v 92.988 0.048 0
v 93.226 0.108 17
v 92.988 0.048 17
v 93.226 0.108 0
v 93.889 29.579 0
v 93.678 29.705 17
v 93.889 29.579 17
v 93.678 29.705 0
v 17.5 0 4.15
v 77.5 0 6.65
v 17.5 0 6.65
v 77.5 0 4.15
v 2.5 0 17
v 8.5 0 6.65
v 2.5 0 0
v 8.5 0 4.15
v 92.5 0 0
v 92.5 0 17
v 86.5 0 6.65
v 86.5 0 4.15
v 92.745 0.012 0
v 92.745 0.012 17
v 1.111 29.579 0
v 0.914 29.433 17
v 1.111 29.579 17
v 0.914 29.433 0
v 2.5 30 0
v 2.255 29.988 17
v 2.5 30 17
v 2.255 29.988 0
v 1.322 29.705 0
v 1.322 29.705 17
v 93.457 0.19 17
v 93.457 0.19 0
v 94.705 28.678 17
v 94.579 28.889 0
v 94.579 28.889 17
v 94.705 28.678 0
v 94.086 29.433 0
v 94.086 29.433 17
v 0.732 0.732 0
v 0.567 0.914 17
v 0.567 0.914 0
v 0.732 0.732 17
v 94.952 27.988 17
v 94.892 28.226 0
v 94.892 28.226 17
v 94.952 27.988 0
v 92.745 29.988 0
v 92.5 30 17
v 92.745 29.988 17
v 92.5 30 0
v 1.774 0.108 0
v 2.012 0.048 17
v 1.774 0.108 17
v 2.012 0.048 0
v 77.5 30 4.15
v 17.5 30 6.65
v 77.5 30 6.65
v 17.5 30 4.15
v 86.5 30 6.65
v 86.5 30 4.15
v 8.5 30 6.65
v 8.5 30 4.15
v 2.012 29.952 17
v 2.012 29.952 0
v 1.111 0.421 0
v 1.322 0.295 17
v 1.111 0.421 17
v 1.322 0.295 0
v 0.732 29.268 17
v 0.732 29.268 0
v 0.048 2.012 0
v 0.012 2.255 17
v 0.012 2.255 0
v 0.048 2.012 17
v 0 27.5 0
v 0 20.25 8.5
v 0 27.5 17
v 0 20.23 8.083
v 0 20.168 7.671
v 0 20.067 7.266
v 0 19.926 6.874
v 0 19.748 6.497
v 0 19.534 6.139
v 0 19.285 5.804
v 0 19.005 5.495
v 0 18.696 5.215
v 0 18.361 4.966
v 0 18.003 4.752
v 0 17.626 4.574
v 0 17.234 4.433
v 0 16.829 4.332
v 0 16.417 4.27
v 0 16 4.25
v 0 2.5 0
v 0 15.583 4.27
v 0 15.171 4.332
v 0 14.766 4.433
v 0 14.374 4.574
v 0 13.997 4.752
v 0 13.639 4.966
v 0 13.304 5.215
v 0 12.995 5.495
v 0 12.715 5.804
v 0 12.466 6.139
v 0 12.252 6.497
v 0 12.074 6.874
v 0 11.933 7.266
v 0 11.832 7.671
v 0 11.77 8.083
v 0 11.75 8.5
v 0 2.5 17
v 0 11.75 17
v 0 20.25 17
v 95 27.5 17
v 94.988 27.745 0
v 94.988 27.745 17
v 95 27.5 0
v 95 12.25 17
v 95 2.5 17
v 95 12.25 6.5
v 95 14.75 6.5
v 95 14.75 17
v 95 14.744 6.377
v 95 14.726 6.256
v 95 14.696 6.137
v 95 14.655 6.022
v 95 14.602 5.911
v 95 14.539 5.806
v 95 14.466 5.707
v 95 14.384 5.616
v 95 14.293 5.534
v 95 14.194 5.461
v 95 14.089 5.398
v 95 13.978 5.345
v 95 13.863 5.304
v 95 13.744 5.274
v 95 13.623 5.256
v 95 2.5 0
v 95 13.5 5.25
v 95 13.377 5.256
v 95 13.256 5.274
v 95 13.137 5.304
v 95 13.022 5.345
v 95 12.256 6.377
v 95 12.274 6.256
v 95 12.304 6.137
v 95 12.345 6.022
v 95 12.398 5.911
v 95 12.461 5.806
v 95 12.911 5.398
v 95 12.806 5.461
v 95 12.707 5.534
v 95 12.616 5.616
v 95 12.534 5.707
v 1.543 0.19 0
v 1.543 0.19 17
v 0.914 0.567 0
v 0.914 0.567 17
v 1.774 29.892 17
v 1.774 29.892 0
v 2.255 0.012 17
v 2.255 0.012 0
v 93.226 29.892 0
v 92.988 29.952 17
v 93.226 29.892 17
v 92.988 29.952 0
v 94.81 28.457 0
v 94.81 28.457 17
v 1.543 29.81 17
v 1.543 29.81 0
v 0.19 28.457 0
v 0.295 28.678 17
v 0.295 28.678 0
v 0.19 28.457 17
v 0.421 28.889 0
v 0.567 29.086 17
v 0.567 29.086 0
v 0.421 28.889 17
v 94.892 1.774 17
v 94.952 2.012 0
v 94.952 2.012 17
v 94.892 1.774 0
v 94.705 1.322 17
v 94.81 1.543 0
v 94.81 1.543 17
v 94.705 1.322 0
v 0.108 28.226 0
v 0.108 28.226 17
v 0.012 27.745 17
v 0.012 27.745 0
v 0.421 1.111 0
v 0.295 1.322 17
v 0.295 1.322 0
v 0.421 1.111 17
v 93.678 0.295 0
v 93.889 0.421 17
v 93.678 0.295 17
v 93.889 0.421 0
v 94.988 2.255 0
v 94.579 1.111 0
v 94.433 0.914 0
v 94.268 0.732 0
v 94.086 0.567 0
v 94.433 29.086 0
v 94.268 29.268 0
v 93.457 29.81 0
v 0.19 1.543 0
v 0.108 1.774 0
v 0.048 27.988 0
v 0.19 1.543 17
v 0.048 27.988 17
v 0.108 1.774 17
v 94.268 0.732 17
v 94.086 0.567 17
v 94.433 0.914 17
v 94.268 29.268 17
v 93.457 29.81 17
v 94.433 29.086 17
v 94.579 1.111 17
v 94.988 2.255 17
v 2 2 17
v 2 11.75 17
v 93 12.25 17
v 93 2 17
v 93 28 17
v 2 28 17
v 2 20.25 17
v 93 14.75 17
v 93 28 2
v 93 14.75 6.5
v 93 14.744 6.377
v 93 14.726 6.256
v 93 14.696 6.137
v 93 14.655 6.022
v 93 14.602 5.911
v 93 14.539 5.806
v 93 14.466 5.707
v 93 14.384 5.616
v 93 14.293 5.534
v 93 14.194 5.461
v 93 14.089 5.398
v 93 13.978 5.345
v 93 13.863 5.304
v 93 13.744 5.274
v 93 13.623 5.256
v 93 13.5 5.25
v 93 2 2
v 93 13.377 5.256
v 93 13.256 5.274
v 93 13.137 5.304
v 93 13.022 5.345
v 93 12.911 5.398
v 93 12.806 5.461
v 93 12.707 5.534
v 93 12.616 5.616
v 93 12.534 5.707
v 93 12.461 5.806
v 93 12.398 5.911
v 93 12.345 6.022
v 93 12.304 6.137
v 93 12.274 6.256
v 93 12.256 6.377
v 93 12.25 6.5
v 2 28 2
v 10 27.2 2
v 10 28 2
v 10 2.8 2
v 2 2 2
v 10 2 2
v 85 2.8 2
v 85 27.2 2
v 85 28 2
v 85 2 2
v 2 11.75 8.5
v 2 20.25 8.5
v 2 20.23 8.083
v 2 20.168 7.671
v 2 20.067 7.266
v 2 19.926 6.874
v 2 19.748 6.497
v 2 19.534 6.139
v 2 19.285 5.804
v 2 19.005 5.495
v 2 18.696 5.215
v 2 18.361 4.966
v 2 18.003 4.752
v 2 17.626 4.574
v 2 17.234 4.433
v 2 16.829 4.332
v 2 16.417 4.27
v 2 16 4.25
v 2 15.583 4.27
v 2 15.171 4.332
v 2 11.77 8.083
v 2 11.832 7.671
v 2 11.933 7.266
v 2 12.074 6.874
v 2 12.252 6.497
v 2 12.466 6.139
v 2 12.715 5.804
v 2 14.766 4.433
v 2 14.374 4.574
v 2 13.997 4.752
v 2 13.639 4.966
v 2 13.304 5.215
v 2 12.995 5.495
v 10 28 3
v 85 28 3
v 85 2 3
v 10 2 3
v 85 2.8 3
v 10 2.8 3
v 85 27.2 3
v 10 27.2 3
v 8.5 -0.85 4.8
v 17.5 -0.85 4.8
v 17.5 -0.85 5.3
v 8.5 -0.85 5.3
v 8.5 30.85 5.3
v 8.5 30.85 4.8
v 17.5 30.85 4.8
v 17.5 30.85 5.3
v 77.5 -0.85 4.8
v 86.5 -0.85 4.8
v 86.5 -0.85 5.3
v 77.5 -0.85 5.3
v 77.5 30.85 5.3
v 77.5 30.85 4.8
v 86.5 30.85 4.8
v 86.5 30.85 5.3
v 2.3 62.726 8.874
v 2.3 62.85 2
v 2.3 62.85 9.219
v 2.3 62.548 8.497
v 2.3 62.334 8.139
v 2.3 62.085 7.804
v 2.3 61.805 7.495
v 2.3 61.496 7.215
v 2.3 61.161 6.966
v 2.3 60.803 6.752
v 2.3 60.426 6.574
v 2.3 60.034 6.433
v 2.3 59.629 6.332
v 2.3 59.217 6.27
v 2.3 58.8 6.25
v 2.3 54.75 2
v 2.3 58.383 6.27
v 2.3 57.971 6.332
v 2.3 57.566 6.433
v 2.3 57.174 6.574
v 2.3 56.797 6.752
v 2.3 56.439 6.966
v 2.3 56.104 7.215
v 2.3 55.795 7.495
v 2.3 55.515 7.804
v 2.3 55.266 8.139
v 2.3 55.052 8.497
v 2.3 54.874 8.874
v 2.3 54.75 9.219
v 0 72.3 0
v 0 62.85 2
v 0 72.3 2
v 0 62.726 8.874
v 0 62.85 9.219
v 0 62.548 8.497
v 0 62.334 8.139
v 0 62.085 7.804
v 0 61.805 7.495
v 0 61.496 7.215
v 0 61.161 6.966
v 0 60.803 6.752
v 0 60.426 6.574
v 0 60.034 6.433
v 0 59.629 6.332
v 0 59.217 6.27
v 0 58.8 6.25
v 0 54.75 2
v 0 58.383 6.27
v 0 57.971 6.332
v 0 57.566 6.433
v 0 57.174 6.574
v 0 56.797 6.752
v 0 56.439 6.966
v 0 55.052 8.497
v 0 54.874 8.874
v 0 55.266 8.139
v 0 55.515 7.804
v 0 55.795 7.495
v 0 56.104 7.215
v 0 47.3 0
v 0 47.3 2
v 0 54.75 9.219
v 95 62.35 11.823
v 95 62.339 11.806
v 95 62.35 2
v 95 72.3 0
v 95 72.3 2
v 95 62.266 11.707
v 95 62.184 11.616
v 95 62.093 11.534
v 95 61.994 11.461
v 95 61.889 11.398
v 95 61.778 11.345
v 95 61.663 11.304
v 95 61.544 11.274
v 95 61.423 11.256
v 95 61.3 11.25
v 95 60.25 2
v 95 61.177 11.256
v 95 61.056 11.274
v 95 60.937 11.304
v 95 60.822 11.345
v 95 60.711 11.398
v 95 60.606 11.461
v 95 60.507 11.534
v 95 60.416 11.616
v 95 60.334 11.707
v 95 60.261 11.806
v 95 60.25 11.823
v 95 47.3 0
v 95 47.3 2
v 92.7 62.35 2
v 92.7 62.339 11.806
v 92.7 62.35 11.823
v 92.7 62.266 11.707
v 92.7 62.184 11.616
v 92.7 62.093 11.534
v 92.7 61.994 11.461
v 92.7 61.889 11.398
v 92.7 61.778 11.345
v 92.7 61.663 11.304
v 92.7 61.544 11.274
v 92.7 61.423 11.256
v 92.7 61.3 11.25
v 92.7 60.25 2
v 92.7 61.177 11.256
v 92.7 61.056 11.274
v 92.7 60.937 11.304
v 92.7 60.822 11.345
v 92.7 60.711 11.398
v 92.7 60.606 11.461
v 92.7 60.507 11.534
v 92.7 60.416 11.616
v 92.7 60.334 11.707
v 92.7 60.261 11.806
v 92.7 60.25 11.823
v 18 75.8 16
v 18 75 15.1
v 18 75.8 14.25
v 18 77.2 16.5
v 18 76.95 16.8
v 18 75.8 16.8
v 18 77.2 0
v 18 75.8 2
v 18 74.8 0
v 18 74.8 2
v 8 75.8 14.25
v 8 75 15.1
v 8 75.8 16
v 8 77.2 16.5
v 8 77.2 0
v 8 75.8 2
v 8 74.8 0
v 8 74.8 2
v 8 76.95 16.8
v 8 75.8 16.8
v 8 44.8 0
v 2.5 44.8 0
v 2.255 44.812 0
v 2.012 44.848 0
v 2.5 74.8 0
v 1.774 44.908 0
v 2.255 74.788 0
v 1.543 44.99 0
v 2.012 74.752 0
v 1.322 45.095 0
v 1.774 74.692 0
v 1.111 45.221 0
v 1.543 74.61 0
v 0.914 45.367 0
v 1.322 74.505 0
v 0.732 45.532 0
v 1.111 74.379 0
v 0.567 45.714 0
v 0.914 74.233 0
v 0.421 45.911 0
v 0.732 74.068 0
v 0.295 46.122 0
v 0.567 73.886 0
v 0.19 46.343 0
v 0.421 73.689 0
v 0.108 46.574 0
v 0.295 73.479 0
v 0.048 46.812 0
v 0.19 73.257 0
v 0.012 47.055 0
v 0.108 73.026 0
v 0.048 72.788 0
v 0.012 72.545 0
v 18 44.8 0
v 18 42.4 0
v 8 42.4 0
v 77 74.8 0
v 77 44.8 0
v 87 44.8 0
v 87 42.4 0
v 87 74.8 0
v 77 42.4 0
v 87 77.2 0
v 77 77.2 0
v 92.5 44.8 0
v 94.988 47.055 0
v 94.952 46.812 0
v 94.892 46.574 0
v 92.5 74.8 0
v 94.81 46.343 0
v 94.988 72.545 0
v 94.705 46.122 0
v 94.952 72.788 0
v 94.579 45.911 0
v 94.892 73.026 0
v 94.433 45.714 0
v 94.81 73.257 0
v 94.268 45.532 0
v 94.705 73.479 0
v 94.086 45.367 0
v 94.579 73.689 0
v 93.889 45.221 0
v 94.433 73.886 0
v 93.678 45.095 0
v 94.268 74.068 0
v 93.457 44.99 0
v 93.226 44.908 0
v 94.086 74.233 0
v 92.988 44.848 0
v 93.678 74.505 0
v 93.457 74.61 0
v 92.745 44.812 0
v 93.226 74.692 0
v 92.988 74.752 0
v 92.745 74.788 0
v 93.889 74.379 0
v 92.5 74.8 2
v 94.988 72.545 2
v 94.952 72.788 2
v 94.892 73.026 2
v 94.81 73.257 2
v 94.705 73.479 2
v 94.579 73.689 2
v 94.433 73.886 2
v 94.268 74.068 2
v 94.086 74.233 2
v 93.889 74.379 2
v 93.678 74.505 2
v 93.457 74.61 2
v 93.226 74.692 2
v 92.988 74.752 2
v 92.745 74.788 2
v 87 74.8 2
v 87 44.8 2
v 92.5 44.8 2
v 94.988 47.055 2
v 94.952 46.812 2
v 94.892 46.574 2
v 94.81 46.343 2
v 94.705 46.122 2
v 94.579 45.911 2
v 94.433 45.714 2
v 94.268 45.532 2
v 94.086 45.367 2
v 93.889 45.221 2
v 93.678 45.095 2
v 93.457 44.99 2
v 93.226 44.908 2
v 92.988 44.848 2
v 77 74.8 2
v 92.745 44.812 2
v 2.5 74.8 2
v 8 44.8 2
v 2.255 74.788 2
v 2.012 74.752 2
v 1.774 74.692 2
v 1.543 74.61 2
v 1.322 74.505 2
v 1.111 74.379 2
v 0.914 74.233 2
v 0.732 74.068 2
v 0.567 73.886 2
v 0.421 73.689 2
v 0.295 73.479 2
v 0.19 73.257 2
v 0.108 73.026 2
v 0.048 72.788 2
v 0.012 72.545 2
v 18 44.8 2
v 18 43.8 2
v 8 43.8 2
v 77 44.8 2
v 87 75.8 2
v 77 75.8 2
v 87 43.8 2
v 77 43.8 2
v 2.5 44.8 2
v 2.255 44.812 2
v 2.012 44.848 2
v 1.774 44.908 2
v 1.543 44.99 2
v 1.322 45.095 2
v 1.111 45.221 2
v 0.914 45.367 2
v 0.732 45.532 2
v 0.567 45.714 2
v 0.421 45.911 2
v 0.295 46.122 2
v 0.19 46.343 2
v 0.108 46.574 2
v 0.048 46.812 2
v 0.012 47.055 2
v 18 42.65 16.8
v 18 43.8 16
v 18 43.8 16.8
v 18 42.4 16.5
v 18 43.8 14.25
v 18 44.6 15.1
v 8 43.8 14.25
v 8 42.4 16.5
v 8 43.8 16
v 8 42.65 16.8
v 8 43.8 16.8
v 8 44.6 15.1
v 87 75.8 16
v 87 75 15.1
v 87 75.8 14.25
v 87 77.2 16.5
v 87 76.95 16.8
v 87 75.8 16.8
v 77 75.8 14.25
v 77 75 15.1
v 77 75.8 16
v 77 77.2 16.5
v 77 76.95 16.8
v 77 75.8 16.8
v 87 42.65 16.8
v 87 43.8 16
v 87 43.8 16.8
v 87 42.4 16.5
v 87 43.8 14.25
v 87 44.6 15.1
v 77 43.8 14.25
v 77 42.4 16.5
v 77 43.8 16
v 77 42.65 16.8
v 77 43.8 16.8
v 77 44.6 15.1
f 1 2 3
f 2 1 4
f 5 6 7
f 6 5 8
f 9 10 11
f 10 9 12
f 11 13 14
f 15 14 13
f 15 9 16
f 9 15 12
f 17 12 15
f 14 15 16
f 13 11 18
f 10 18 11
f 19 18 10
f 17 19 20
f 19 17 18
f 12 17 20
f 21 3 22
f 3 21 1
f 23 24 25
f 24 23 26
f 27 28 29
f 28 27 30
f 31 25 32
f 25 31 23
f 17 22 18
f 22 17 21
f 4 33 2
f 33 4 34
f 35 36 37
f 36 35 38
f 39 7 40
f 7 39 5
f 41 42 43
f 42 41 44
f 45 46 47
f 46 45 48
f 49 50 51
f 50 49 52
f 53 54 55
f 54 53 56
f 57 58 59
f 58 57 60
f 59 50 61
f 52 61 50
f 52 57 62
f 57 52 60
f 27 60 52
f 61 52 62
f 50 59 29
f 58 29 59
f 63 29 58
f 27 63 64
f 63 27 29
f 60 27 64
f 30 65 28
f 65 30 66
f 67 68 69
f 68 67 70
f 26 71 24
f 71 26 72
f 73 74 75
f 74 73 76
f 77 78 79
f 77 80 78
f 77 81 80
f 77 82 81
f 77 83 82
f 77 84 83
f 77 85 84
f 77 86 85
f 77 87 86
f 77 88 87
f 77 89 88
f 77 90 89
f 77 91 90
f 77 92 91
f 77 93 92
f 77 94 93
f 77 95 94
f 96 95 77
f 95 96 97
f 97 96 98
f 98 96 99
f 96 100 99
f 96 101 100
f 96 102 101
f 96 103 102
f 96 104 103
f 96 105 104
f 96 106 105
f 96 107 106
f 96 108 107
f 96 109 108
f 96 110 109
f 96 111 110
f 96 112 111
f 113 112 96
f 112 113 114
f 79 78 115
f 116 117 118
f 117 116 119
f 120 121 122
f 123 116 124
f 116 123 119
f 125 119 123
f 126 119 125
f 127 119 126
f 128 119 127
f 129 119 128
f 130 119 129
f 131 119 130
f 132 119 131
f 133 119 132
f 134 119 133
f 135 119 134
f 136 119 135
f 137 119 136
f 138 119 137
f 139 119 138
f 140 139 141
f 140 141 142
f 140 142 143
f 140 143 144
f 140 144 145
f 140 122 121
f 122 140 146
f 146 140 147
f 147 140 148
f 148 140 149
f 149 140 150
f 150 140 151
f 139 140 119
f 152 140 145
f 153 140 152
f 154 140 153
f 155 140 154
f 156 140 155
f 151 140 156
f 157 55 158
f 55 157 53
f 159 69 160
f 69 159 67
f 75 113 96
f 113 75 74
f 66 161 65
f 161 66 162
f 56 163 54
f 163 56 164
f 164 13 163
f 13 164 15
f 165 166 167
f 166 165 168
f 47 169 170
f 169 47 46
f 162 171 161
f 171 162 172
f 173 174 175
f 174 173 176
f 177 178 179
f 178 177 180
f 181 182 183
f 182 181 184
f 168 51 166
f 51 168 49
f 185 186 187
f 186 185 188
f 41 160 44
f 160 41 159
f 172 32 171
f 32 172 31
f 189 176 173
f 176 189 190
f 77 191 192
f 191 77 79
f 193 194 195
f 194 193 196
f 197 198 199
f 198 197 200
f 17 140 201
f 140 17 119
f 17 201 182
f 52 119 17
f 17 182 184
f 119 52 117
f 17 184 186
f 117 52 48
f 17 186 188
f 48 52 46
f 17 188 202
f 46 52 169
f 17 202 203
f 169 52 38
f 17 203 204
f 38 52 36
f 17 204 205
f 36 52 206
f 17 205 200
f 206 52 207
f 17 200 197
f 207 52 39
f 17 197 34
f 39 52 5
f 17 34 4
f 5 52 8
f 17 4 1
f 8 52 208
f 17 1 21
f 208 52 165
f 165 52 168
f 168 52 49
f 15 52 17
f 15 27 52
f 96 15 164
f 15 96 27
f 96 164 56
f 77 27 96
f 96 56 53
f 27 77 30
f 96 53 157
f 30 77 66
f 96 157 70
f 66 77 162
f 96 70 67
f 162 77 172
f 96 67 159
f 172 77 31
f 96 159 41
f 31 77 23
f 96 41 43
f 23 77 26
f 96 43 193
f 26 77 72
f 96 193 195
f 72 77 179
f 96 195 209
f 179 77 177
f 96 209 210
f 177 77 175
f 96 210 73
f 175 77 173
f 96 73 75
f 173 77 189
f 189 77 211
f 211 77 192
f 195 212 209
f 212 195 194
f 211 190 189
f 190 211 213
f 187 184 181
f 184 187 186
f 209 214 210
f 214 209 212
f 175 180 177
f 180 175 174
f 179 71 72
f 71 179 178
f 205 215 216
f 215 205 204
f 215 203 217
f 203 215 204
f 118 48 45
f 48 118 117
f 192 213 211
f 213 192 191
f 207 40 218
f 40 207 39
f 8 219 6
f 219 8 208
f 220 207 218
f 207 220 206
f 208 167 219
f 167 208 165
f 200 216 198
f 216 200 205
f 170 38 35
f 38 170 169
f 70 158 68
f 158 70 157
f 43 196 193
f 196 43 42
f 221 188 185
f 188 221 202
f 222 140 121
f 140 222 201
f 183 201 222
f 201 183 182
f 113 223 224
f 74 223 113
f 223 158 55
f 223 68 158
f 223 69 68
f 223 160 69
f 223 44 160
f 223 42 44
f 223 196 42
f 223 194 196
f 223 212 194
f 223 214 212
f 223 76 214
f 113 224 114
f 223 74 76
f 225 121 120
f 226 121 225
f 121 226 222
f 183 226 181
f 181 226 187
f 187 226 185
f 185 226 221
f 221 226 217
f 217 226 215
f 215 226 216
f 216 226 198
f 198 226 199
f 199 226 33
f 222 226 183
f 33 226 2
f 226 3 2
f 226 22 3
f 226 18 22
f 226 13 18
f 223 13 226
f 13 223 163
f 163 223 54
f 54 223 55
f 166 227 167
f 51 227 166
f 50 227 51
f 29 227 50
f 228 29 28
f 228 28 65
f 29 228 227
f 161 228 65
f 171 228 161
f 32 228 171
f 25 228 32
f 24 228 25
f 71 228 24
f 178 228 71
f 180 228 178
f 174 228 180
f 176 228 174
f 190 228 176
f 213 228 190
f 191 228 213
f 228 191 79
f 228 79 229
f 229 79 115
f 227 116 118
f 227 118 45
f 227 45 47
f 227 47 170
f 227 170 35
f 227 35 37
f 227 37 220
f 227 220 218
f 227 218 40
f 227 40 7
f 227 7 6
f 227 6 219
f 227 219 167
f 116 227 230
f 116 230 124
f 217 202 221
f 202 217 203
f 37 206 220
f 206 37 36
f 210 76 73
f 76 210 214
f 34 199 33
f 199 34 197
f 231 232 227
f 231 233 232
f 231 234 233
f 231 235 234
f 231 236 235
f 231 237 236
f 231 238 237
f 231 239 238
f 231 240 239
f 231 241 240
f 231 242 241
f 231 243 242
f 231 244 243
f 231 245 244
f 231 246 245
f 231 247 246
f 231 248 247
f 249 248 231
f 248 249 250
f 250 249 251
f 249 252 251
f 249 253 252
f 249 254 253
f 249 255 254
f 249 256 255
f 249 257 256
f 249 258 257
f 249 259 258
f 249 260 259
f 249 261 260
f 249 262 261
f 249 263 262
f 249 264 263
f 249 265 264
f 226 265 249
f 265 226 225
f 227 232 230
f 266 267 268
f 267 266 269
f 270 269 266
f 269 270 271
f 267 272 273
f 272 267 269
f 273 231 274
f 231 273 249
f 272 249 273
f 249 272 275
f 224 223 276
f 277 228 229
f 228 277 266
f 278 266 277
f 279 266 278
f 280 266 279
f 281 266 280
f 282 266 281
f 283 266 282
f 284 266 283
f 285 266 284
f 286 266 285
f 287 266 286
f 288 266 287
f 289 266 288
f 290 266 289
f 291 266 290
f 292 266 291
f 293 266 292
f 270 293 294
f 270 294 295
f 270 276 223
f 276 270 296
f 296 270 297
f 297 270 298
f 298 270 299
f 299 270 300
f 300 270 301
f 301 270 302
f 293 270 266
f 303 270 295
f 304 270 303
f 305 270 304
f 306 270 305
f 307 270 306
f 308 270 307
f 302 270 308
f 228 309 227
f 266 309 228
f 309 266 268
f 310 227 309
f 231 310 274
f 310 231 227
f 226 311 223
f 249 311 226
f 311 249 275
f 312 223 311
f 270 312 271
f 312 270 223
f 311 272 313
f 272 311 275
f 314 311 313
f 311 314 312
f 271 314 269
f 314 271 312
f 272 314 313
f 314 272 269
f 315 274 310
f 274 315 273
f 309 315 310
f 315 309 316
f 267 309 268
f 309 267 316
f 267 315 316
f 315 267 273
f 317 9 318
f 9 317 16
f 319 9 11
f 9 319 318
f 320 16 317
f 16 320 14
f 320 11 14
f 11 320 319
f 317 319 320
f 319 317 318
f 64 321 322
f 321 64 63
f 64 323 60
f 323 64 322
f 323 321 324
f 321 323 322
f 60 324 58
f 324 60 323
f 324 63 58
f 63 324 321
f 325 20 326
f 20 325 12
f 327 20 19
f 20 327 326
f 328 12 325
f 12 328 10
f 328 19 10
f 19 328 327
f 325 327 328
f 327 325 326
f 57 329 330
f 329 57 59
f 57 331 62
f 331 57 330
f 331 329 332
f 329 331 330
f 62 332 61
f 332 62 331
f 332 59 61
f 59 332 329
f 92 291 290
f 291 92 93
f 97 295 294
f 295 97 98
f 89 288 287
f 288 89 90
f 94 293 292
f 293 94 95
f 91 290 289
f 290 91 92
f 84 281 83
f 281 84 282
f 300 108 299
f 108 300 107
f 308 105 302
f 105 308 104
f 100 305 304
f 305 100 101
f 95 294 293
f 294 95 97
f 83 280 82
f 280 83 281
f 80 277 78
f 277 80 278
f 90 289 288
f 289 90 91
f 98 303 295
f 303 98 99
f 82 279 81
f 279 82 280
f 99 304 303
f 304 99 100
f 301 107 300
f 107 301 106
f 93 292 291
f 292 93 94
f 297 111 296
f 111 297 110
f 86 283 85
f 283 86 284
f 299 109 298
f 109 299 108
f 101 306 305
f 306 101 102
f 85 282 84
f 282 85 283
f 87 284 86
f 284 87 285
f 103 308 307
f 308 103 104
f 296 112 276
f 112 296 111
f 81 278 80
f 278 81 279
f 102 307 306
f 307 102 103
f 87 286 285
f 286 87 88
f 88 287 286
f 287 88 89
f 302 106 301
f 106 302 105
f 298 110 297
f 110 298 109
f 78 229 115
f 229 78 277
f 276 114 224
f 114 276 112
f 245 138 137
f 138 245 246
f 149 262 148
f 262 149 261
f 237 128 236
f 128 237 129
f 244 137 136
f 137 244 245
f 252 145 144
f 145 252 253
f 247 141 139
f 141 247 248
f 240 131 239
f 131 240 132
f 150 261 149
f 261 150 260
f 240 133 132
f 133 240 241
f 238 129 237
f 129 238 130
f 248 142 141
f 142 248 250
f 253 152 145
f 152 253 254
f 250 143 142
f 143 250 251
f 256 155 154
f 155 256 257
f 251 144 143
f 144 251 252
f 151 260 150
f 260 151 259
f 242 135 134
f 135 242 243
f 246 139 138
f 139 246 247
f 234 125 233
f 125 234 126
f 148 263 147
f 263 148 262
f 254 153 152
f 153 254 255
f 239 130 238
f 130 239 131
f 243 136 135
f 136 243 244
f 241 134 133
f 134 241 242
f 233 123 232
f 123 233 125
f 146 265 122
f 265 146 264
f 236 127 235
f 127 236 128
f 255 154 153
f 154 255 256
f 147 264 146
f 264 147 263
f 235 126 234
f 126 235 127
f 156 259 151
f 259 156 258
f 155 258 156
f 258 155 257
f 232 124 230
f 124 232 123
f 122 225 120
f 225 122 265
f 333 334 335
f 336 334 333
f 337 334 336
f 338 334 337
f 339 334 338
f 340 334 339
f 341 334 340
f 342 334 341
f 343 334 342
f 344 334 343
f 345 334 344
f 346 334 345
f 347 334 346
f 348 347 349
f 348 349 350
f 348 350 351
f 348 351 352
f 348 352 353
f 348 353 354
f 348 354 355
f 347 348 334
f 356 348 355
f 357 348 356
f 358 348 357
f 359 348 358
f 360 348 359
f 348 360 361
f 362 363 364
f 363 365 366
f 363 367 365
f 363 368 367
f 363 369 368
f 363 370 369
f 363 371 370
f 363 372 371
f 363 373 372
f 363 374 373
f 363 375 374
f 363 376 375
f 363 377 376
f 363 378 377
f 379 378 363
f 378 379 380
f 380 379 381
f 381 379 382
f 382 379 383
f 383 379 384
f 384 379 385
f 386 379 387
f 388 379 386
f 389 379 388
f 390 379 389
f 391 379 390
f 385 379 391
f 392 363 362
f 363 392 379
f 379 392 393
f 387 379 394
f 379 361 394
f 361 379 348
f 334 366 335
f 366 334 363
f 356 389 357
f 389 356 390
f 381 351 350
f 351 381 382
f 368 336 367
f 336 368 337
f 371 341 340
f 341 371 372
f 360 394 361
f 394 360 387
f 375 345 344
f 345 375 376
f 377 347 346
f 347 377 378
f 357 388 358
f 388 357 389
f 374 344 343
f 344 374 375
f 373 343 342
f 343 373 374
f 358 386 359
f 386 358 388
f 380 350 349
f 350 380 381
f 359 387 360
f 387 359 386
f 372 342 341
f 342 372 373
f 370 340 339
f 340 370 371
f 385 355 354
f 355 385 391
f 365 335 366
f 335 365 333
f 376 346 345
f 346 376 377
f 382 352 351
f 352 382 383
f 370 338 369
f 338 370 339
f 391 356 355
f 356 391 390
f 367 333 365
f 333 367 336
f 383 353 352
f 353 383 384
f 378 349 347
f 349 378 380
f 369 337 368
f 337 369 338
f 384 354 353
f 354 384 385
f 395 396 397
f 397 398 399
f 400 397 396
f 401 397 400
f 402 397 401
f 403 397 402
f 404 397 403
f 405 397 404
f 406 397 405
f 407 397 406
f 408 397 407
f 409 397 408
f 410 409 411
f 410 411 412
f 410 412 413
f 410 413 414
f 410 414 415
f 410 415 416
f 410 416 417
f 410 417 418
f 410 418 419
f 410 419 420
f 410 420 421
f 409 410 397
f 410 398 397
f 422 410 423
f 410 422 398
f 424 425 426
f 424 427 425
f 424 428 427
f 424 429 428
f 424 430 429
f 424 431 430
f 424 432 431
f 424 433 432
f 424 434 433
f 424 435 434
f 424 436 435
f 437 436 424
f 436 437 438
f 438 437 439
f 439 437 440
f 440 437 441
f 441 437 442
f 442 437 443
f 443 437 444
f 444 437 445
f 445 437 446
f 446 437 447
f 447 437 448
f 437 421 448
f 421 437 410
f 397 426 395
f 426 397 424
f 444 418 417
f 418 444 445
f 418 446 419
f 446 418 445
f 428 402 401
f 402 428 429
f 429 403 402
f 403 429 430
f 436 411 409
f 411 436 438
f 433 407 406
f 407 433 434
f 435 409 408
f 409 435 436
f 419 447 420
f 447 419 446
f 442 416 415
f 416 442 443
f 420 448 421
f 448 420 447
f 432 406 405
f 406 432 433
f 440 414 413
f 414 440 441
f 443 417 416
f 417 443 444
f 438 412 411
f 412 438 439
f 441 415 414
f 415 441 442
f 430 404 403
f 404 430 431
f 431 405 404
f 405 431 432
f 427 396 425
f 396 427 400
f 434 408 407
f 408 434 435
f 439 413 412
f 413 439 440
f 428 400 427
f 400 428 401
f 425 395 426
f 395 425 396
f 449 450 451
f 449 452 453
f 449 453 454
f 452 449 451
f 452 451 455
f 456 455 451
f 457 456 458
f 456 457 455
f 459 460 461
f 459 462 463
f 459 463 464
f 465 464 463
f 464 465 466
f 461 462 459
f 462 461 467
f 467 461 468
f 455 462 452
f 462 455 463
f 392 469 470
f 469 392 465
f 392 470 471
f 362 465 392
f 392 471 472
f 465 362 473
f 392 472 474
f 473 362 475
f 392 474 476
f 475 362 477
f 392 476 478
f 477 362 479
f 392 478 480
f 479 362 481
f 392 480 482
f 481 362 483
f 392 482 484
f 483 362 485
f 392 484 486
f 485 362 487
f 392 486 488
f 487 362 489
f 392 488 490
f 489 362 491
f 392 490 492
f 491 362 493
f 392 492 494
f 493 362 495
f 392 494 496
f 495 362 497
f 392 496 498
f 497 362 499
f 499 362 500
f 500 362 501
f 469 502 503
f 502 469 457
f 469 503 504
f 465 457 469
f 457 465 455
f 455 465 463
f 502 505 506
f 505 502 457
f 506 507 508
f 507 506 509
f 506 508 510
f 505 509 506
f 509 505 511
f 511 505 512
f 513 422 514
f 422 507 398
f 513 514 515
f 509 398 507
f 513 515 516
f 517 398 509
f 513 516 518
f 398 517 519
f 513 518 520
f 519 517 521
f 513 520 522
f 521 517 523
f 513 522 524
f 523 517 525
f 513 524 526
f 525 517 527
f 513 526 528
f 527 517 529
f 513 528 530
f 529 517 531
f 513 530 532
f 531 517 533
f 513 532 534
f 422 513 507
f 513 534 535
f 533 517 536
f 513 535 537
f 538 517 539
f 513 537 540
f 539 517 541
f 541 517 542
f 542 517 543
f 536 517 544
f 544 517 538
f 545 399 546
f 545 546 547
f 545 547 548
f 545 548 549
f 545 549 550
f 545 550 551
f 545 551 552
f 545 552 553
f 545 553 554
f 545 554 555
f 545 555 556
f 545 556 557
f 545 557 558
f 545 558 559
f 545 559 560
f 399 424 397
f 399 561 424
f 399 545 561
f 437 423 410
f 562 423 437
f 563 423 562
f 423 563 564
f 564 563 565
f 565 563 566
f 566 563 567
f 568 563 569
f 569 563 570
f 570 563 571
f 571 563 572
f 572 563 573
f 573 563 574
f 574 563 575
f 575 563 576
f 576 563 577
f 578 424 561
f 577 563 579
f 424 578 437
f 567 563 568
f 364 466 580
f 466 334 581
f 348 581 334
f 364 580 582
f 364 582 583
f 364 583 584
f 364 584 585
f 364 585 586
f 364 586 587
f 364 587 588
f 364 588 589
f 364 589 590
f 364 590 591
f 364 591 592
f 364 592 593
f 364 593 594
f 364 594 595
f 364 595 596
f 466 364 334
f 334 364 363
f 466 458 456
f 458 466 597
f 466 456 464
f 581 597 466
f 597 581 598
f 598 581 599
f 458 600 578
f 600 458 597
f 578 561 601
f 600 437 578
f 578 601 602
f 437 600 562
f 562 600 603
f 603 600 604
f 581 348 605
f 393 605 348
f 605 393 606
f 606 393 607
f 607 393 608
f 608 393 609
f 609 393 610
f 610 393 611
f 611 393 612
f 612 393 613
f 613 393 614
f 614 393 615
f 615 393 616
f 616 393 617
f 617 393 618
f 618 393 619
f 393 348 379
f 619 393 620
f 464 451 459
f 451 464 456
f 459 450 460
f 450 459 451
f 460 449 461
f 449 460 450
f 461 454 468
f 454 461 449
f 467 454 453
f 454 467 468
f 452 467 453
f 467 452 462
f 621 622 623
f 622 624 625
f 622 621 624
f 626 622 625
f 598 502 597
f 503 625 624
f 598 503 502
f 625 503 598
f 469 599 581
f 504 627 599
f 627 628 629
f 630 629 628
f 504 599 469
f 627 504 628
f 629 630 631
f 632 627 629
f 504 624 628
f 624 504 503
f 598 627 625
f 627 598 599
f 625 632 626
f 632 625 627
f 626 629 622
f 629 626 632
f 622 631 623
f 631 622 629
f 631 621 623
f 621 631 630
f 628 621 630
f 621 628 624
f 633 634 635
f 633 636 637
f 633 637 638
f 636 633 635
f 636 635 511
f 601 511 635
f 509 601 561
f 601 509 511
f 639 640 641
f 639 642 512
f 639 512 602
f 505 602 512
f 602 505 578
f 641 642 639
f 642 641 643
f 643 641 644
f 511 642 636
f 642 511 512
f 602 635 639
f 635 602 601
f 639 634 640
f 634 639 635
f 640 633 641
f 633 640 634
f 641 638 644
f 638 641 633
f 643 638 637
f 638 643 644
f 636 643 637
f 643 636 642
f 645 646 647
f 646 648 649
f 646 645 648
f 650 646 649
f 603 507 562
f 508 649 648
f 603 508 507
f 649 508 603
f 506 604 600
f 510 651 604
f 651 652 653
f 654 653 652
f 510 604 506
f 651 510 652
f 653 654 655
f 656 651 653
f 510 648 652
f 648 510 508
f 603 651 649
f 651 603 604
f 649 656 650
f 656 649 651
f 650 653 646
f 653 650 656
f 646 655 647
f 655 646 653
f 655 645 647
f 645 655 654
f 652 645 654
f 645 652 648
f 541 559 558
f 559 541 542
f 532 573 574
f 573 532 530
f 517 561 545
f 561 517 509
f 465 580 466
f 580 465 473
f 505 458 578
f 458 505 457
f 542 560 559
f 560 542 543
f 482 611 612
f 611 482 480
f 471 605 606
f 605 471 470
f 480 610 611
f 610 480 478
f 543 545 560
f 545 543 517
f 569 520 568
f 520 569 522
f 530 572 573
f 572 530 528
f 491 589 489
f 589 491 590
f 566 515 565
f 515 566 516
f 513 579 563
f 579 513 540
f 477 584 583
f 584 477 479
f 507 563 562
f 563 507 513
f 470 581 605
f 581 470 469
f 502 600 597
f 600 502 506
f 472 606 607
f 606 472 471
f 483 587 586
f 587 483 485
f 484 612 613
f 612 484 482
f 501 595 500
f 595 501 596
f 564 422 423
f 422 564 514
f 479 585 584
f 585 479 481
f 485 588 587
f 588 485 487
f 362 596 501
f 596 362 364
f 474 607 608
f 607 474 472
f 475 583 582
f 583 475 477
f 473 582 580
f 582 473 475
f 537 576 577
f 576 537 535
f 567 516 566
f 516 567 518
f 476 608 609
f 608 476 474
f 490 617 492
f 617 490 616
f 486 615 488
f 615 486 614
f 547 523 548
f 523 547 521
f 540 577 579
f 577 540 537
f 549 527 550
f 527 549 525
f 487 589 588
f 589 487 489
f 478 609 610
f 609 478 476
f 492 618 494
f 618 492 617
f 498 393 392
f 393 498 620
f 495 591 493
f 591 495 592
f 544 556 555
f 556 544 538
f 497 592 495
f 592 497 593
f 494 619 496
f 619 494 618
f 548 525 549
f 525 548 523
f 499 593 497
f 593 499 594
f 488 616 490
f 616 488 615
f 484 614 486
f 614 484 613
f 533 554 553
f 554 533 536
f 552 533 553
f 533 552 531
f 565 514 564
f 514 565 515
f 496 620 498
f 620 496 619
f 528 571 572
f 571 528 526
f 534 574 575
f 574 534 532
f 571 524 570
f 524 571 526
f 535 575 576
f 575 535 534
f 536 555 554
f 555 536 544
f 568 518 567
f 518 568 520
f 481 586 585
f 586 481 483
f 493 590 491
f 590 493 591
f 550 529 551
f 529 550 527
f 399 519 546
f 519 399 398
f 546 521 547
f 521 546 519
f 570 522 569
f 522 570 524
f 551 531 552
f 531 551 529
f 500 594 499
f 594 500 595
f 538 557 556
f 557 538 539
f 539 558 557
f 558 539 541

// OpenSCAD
// Connection board enclosure | external snap-fit revision | all dimensions in mm
// Open in OpenSCAD. Select part: layout, base, lid, assembled.
// Both cable slots open upwards; matching lid tongues close them.
// The lid is printed upside down (exterior face on the print bed).

/* [Output] */
part = "layout"; // [layout,base,lid,assembled,interference]
$fn = 64;

/* [Enclosure] */
internal_length = 91; // 90 mm board plus 1 mm total clearance
internal_width = 26;
internal_height = 15;
wall = 2;
floor_thickness = 2;
lid_thickness = 2;
corner_radius = 2.5;

/* [Left cable] */
left_diameter = 8;
left_clearance = 0.5; // added to diameter, not per side
left_y = 14; // centre from cavity long edge; 10 mm + 8/2
left_z = 6.5; // centre above inside floor; estimated, adjust to suit

/* [Right cable] */
right_diameter = 2;
right_clearance = 0.5;
right_y = 11.5; // centre from same cavity long edge; assumed centred
right_z = 4.5; // centre above inside floor; estimated

/* [Board support] */
rail_height = 1; // board underside above inside floor; estimated
rail_inset = 0.8; // rail extends this far into cavity
rail_end_gap = 8; // avoid ties and wires at ends

/* [External snap clips] */
// Four outside spring arms engage raised catches on the base.
// No screws, holes, inserts or loss of internal clearance.
clip_end_offset = 13;
clip_width = 10;
clip_arm_thickness = 1.4;
clip_wall_gap = 1.00; // free clearance between arm and body
clip_tip_z = 2.2; // bottom of arm, above outside base floor
clip_hook_depth = 0.80; // inward projection from arm inner face
clip_hook_start_z = 3.0; // start of lead-in ramp
clip_hook_peak_z = 3.9;
clip_hook_return_z = 4.75; // printable upper hook slope
catch_projection = 0.85;
catch_bottom_z = 4.15;
catch_lower_ramp = 0.65;
catch_flat_height = 0.50;
catch_upper_ramp = 1.35;
catch_side_clearance = 0.5; // each end of catch narrower than arm
clip_root_overlap = 1.0; // how far lid bridge overlaps body
slot_fit = 0.20; // clearance each side of lid tongue
plug_inside_extension = 0.30;
print_spacing = 10;

/* [Hidden] */
L = internal_length + 2*wall;
W = internal_width + 2*wall;
B = floor_thickness + internal_height;
H = B + lid_thickness;
eps = 0.02;
left_r = (left_diameter+left_clearance)/2;
right_r = (right_diameter+right_clearance)/2;

assert(wall >= 1.5 && floor_thickness > 0 && lid_thickness > 0);
assert(corner_radius >= 0 && corner_radius <= wall+0.5);
assert(rail_height > 0 && rail_height < internal_height);
assert(rail_end_gap >= 0 && 2*rail_end_gap < internal_length);
assert(clip_end_offset-clip_width/2 > corner_radius &&
       2*clip_end_offset+clip_width < L);
assert(clip_arm_thickness > 0 && clip_wall_gap > clip_hook_depth && clip_hook_depth > 0);
assert(catch_projection <= clip_wall_gap &&
       catch_projection > clip_wall_gap-clip_hook_depth,
       "Catch must overlap hook but clear the relaxed arm");
assert(clip_tip_z >= 0 && clip_tip_z < clip_hook_start_z &&
       clip_hook_start_z < clip_hook_peak_z && clip_hook_peak_z < clip_hook_return_z);
assert(clip_hook_return_z < B-2 && catch_bottom_z > clip_hook_peak_z);
assert(catch_lower_ramp > 0 && catch_flat_height > 0 && catch_upper_ramp > 0);
assert(catch_bottom_z+catch_lower_ramp+catch_flat_height+catch_upper_ramp < B);
assert(clip_width > 2*catch_side_clearance && clip_root_overlap > 0 && clip_root_overlap <= wall);
// Check that relaxed hook and catch do not intersect at full closure.
// Both profiles are linear in the only possible overlap region.
assert(clip_hook_return_z <= catch_bottom_z ||
       (catch_projection/catch_lower_ramp)*
       max(0,min(catch_lower_ramp,clip_hook_return_z-catch_bottom_z)) <= clip_wall_gap,
       "Adjust hook/catch heights to avoid assembled interference");
for (c = [[left_y,left_z,left_r],[right_y,right_z,right_r]]) {
    assert(c[0]-c[2] > 0 && c[0]+c[2] < internal_width,
        "Cable opening must fit inside cavity width");
    assert(c[1]-c[2] >= 0 && c[1]+c[2] <= internal_height,
        "Cable opening must fit within internal height; adjust cable_z");
    assert(c[2] > slot_fit);
}

module rounded_body(h) {
    linear_extrude(height=h)
        if (corner_radius > 0)
            translate([corner_radius,corner_radius])
                offset(r=corner_radius)
                    square([L-2*corner_radius,W-2*corner_radius]);
        else square([L,W]);
}

// Profile coordinates are [outward distance from side wall, assembled Z].
// Extrusion runs along X; mirror the near-side mechanism onto far side.
module side_profile(x, width, points) {
    translate([x+width/2,0,0])
        rotate([0,-90,0]) rotate([0,0,-90])
            linear_extrude(height=width,convexity=4) polygon(points);
}
module side_pair() {
    children();
    translate([0,W,0]) mirror([0,1,0]) children();
}
module base_catches() {
    for(x=[clip_end_offset,L-clip_end_offset]) side_pair()
        side_profile(x,clip_width-2*catch_side_clearance,[
            [-eps,catch_bottom_z],
            [0,catch_bottom_z],
            [catch_projection,catch_bottom_z+catch_lower_ramp],
            [catch_projection,catch_bottom_z+catch_lower_ramp+catch_flat_height],
            [0,catch_bottom_z+catch_lower_ramp+catch_flat_height+catch_upper_ramp],
            [-eps,catch_bottom_z+catch_lower_ramp+catch_flat_height+catch_upper_ramp]
        ]);
}
module lid_clips() {
    u=clip_wall_gap;
    o=u+clip_arm_thickness;
    for(x=[clip_end_offset,L-clip_end_offset]) side_pair()
        side_profile(x,clip_width,[
            [-clip_root_overlap,B],
            [u,B],
            [u,clip_hook_return_z],
            [u-clip_hook_depth,clip_hook_peak_z],
            [u,clip_hook_start_z],
            [u,clip_tip_z],
            [o-0.25,clip_tip_z],
            [o,clip_tip_z+0.3],
            [o,H],
            [-clip_root_overlap,H]
        ]);
}

// X-axis cylinder for cable opening.
module x_cylinder(x,y,z,len,r) {
    translate([x,y,z]) rotate([0,90,0]) cylinder(h=len,r=r);
}

// A U-shaped cut, open to the top of the base.
module cable_slot(left,y,z,r) {
    x = left ? -eps : L-wall-eps;
    yy = wall+y;
    zz = floor_thickness+z;
    len = wall+2*eps;
    union() {
        x_cylinder(x,yy,zz,len,r);
        translate([x,yy-r,zz]) cube([len,2*r,B-zz+eps]);
    }
}

// Lid tongue drops into the U-slot, with a concave lower edge.
// This traps the cable in a round opening without clamping it.
module cable_tongue(left,y,z,r) {
    x = left ? 0 : L-wall-plug_inside_extension;
    len = wall+plug_inside_extension;
    yy = wall+y;
    zz = floor_thickness+z;
    difference() {
        translate([x,yy-r+slot_fit,zz])
            cube([len,2*(r-slot_fit),B-zz+eps]);
        x_cylinder(x-eps,yy,zz,len+2*eps,r);
    }
}

module support_rails() {
    for(y=[wall-eps,W-wall-rail_inset])
        translate([wall+rail_end_gap,y,floor_thickness-eps])
            cube([internal_length-2*rail_end_gap,
                  rail_inset+eps,rail_height+eps]);
}

module base() {
    difference() {
        union() {
            difference() {
                rounded_body(B);
                translate([wall,wall,floor_thickness])
                    cube([internal_length,internal_width,internal_height+eps]);
            }
            support_rails();
            base_catches();
        }
        cable_slot(true,left_y,left_z,left_r);
        cable_slot(false,right_y,right_z,right_r);
    }
}

module lid_assembled() {
    union() {
        translate([0,0,B]) rounded_body(lid_thickness);
        cable_tongue(true,left_y,left_z,left_r);
        cable_tongue(false,right_y,right_z,right_r);
        lid_clips();
    }
}

module lid_print() {
    translate([0,W,H]) rotate([180,0,0]) lid_assembled();
}

if(part=="base") base();
else if(part=="lid") lid_print();
else if(part=="assembled") {
    color("SlateGray") base();
    color("LightSteelBlue",0.65) lid_assembled();
}
else if(part=="interference") intersection() { base(); lid_assembled(); }
else if(part=="layout") {
    base();
    translate([0,W+2*(clip_wall_gap+clip_arm_thickness)+print_spacing,0]) lid_print();
}
else assert(false,"Unknown part selection");
